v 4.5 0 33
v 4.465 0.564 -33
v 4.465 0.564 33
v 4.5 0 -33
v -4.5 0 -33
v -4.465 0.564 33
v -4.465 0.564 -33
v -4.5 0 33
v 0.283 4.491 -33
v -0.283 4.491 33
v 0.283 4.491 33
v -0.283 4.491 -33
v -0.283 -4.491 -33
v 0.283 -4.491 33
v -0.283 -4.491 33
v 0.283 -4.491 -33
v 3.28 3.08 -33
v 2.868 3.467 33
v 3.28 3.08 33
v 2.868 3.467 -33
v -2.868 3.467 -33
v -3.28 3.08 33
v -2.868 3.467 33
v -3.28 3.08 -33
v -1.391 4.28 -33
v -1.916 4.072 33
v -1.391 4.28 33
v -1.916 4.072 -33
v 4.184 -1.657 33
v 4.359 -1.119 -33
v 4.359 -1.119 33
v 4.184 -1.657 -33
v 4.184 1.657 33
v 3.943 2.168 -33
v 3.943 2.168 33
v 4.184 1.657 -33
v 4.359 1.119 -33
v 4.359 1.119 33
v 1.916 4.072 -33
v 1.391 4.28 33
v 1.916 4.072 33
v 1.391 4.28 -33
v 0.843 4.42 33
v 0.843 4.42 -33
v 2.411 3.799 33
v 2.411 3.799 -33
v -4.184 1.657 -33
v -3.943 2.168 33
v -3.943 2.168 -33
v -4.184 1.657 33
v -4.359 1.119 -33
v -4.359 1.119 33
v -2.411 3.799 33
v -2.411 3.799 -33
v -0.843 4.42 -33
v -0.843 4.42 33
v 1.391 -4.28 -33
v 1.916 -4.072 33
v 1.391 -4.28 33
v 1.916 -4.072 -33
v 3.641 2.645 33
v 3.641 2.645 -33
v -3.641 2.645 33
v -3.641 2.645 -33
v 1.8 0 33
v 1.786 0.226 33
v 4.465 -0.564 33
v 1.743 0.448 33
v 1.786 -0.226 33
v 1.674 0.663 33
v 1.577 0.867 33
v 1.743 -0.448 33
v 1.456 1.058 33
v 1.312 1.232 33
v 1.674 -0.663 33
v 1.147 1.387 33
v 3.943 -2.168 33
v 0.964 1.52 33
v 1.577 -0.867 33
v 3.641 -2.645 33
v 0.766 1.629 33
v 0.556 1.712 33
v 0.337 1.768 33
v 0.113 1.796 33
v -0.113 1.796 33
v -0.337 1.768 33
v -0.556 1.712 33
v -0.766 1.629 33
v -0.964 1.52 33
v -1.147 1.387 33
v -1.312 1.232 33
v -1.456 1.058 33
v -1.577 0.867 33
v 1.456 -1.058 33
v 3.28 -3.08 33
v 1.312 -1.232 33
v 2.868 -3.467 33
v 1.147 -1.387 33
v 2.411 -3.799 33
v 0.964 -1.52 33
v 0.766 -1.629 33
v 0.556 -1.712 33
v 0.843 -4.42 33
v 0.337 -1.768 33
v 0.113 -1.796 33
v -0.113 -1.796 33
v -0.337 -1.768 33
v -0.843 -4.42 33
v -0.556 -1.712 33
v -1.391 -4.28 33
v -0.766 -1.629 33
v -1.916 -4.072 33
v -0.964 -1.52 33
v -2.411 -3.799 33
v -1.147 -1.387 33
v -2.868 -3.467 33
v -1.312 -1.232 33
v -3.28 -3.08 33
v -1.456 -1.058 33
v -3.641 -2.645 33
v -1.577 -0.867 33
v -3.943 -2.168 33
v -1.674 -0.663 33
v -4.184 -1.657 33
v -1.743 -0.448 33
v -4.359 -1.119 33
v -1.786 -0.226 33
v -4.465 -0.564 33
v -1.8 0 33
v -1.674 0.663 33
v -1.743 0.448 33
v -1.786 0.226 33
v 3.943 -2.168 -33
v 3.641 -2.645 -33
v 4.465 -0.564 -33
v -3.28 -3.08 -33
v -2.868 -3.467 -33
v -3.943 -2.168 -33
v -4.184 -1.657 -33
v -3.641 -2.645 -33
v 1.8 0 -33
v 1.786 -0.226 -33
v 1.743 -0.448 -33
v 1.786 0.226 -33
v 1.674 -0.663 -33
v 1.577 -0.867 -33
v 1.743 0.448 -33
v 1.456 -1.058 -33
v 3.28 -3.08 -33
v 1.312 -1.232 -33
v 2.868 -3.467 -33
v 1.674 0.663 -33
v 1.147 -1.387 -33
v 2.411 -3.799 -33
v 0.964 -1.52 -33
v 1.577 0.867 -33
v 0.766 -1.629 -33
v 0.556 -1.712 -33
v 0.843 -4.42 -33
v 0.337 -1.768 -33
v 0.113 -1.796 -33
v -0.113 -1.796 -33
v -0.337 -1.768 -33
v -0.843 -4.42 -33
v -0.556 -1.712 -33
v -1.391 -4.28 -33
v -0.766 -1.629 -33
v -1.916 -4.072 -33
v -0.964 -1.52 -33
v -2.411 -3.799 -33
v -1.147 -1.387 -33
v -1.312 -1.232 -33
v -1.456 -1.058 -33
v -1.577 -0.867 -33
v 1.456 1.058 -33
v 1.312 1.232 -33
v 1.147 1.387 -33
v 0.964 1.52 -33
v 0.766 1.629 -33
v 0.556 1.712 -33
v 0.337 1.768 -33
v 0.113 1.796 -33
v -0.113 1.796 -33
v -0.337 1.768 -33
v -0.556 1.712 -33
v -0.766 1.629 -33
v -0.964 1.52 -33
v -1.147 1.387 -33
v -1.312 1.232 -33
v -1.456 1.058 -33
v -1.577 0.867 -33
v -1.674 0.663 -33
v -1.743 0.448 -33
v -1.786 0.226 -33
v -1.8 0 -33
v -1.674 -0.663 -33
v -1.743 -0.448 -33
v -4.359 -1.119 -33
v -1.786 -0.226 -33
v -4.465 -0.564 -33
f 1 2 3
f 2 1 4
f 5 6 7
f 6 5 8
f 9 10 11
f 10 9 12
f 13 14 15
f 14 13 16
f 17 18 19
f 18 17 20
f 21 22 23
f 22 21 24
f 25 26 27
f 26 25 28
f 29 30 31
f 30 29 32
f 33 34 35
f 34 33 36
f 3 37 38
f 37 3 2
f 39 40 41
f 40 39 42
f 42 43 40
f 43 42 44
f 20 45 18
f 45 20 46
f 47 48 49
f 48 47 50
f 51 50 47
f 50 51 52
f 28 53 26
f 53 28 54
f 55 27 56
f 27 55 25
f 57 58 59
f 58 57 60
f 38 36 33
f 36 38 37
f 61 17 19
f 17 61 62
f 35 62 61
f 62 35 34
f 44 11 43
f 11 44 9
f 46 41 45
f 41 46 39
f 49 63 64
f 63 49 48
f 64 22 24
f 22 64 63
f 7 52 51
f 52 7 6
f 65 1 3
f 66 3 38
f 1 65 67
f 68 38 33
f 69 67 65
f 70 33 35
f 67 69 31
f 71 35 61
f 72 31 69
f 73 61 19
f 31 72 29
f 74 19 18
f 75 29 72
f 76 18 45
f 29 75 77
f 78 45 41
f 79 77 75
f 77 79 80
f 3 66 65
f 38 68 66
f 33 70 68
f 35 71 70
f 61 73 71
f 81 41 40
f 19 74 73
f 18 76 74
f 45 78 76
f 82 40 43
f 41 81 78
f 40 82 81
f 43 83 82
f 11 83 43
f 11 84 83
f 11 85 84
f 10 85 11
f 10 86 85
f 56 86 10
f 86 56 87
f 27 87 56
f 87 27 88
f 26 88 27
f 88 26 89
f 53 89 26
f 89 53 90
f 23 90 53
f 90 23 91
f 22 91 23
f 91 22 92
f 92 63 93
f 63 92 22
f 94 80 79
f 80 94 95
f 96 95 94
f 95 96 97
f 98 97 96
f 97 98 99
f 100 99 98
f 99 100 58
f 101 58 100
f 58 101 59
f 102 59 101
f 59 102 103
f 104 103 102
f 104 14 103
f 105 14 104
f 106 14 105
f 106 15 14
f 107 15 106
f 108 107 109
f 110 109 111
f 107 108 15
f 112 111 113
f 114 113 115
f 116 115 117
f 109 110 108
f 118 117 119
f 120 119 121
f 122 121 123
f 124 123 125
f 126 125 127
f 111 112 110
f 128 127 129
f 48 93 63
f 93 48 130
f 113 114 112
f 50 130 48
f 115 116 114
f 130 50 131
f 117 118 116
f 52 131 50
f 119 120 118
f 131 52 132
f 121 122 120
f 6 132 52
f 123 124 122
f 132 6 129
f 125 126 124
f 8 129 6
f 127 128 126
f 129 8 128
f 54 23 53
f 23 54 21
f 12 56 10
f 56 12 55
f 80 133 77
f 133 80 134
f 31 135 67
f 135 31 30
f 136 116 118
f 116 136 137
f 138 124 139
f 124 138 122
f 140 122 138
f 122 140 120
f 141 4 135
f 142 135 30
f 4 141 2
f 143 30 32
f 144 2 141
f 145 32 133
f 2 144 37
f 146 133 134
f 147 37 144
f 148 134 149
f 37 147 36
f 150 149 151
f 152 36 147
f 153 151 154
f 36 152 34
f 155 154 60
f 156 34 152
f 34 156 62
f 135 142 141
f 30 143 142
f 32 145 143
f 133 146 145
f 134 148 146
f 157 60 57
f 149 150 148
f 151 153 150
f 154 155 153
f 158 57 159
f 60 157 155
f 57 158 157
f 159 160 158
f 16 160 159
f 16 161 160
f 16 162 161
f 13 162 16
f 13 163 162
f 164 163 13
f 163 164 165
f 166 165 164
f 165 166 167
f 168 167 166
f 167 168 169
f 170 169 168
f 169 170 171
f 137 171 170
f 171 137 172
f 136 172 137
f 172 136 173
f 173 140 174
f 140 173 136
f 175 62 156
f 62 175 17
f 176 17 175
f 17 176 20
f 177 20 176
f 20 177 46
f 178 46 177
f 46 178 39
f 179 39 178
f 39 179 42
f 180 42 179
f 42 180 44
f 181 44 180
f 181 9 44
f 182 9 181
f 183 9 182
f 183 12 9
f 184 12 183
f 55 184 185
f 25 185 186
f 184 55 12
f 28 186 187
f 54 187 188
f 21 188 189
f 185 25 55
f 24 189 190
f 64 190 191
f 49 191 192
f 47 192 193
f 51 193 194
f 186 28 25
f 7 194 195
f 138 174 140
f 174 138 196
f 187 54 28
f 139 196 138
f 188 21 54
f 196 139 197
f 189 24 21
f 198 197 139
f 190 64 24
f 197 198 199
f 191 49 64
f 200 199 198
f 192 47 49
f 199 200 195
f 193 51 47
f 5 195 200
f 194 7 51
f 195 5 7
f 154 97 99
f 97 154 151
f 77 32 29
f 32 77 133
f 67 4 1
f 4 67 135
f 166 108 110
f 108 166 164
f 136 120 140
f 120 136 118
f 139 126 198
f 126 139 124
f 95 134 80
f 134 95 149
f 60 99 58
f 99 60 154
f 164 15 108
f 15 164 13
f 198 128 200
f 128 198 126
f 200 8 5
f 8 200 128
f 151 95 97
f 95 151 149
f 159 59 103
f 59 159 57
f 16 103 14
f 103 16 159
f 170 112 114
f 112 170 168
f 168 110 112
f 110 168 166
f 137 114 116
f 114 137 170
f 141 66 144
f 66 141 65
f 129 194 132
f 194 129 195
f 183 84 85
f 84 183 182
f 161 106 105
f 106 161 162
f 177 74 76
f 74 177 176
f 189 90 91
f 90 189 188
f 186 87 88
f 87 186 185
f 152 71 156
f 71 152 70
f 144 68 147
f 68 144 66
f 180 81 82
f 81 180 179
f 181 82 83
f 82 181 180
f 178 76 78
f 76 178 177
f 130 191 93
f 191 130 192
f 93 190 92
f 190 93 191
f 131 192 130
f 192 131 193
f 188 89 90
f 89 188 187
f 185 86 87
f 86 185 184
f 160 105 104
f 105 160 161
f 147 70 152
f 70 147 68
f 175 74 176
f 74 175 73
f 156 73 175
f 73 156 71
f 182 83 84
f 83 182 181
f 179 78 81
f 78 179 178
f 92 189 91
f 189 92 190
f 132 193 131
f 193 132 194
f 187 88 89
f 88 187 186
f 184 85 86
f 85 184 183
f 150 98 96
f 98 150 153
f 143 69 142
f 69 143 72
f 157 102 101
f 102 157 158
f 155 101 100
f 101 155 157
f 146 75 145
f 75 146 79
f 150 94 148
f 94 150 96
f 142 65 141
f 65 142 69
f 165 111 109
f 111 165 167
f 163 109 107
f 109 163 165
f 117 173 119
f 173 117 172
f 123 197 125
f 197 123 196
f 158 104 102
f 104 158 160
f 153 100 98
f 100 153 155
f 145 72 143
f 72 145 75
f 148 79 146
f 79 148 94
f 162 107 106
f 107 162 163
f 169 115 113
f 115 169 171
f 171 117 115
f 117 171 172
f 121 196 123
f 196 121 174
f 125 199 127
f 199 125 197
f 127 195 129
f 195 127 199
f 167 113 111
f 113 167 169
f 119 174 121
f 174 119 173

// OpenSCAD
$fn = 50;


difference() {
	union() {
		translate(v = [0, 0, -33.0000000000]) {
			cylinder(h = 66, r = 4.5000000000);
		}
	}
	union() {
		translate(v = [0, 0, -100.0000000000]) {
			cylinder(h = 200, r = 1.8000000000);
		}
	}
}
